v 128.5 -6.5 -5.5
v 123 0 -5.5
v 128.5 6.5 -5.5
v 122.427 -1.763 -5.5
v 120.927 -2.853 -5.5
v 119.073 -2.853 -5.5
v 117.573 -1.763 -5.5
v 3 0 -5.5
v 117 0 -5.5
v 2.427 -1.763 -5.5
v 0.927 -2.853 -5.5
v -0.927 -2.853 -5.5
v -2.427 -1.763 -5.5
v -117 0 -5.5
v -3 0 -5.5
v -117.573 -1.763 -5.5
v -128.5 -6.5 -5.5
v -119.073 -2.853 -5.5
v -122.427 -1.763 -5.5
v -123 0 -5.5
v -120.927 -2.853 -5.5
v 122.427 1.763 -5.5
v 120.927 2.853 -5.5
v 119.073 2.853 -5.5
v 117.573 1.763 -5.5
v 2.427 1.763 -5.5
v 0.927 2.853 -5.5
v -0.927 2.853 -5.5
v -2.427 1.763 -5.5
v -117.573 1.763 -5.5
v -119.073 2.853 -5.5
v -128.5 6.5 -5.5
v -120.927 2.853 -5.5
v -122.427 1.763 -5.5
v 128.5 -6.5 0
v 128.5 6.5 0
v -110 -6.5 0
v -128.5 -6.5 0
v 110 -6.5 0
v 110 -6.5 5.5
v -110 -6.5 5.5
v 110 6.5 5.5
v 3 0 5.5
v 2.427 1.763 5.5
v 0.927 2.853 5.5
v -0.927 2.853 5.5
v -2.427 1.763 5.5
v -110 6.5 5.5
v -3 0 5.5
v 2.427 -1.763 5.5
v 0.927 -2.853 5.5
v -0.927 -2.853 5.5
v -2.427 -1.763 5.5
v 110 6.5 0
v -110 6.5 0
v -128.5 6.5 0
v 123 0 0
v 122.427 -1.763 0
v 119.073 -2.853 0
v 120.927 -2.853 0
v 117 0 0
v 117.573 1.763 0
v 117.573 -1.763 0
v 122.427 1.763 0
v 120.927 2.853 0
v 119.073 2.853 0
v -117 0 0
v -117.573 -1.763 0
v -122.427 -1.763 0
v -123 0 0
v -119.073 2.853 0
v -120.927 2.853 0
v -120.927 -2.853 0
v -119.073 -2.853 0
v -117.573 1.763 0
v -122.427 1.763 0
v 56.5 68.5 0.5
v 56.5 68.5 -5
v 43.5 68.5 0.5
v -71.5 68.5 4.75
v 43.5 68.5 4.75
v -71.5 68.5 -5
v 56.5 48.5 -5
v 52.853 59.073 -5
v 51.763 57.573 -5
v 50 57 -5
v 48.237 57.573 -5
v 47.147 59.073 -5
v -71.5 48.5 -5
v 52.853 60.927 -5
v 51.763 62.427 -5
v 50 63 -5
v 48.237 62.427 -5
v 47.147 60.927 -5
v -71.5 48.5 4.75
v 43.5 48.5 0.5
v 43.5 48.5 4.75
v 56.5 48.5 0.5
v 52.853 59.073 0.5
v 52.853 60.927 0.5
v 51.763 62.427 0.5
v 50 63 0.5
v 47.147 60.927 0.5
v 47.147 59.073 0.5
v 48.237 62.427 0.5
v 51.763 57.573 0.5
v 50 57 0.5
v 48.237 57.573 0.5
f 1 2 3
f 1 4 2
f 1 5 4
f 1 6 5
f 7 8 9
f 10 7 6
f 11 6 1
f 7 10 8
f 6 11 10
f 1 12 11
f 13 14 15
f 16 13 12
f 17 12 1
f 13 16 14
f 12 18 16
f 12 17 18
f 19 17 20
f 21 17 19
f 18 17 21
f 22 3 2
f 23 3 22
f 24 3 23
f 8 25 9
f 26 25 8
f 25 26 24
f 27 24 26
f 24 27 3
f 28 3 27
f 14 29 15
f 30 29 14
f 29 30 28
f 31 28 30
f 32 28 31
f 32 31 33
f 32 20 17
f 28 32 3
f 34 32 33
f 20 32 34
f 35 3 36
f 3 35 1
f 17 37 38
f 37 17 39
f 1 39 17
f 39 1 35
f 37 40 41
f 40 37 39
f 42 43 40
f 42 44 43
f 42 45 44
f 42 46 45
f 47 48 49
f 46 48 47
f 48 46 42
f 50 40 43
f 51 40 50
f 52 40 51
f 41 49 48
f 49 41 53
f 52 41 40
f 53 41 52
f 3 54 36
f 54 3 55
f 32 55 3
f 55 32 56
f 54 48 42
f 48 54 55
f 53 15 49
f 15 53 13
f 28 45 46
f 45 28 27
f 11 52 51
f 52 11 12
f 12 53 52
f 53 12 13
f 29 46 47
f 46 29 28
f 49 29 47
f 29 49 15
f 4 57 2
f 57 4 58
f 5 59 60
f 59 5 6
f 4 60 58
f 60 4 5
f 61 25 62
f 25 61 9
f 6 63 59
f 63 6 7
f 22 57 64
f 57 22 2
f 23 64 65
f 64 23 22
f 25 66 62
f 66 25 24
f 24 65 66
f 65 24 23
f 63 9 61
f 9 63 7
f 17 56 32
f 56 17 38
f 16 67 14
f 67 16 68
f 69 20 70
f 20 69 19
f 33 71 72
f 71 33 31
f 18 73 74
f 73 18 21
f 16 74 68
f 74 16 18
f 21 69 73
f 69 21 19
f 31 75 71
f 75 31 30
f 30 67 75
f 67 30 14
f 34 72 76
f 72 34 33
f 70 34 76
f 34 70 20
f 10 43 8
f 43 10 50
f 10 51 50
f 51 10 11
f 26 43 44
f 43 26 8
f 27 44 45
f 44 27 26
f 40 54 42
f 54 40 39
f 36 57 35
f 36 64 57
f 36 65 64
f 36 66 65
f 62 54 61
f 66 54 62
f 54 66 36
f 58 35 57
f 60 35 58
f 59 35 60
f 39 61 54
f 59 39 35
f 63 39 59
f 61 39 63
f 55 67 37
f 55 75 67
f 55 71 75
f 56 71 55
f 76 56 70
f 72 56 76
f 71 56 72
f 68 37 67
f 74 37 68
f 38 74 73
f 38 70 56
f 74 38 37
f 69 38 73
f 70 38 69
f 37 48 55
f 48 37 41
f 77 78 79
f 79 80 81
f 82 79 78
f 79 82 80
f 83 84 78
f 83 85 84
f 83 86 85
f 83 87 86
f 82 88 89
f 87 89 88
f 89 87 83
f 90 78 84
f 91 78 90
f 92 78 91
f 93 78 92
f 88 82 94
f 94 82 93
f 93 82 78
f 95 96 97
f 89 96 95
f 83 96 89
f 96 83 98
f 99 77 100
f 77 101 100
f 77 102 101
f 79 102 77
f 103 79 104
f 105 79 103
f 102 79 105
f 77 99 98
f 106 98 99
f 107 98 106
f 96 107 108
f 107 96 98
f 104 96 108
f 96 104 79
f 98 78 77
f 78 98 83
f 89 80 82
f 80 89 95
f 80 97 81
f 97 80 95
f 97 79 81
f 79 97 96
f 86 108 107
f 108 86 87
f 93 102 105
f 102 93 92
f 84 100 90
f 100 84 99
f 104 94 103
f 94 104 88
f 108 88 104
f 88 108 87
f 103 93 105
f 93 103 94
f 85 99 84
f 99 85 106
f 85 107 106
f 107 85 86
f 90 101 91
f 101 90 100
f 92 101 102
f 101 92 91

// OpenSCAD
rotate([180,0,0])
{
difference() {
        union() {
            translate([(120)/2,0,0])
                bar();

            translate([(-120)/2,0,0])
                bar();
        }

        color("red")
        translate([120,0,-2.75])
            cube([20,13,5.5], center = true);

       color("green")
        translate([-120,0,-2.75])
            cube([20,13,5.5], center = true); 
    }

    translate([80,60,0])
    rotate([0,0,90]) {
        translate([0,30,5])
        {
            difference() {
                union() {
                color ("blue")
                    translate([-118.5,57.5,-2.75])
                            cube([20,128,5.5], center = true);
               color ("cyan")
                    translate([-118.5,64,-7])
                            cube([20,115,5.5], center = true);
                }
                translate([-120, 0,0])

                    cylinder(h=50, d=6, center=true);
            }

        }
    }
}
    
module bar () 
    {
        difference() 
        {
            cube ([117+20,13,11], center=true);
            translate([-60, 0,0])
                cylinder(h=50, d=6, center=true);
            translate([60, 0,0])
                cylinder(h=50, d=6, center=true);

        }
    }
